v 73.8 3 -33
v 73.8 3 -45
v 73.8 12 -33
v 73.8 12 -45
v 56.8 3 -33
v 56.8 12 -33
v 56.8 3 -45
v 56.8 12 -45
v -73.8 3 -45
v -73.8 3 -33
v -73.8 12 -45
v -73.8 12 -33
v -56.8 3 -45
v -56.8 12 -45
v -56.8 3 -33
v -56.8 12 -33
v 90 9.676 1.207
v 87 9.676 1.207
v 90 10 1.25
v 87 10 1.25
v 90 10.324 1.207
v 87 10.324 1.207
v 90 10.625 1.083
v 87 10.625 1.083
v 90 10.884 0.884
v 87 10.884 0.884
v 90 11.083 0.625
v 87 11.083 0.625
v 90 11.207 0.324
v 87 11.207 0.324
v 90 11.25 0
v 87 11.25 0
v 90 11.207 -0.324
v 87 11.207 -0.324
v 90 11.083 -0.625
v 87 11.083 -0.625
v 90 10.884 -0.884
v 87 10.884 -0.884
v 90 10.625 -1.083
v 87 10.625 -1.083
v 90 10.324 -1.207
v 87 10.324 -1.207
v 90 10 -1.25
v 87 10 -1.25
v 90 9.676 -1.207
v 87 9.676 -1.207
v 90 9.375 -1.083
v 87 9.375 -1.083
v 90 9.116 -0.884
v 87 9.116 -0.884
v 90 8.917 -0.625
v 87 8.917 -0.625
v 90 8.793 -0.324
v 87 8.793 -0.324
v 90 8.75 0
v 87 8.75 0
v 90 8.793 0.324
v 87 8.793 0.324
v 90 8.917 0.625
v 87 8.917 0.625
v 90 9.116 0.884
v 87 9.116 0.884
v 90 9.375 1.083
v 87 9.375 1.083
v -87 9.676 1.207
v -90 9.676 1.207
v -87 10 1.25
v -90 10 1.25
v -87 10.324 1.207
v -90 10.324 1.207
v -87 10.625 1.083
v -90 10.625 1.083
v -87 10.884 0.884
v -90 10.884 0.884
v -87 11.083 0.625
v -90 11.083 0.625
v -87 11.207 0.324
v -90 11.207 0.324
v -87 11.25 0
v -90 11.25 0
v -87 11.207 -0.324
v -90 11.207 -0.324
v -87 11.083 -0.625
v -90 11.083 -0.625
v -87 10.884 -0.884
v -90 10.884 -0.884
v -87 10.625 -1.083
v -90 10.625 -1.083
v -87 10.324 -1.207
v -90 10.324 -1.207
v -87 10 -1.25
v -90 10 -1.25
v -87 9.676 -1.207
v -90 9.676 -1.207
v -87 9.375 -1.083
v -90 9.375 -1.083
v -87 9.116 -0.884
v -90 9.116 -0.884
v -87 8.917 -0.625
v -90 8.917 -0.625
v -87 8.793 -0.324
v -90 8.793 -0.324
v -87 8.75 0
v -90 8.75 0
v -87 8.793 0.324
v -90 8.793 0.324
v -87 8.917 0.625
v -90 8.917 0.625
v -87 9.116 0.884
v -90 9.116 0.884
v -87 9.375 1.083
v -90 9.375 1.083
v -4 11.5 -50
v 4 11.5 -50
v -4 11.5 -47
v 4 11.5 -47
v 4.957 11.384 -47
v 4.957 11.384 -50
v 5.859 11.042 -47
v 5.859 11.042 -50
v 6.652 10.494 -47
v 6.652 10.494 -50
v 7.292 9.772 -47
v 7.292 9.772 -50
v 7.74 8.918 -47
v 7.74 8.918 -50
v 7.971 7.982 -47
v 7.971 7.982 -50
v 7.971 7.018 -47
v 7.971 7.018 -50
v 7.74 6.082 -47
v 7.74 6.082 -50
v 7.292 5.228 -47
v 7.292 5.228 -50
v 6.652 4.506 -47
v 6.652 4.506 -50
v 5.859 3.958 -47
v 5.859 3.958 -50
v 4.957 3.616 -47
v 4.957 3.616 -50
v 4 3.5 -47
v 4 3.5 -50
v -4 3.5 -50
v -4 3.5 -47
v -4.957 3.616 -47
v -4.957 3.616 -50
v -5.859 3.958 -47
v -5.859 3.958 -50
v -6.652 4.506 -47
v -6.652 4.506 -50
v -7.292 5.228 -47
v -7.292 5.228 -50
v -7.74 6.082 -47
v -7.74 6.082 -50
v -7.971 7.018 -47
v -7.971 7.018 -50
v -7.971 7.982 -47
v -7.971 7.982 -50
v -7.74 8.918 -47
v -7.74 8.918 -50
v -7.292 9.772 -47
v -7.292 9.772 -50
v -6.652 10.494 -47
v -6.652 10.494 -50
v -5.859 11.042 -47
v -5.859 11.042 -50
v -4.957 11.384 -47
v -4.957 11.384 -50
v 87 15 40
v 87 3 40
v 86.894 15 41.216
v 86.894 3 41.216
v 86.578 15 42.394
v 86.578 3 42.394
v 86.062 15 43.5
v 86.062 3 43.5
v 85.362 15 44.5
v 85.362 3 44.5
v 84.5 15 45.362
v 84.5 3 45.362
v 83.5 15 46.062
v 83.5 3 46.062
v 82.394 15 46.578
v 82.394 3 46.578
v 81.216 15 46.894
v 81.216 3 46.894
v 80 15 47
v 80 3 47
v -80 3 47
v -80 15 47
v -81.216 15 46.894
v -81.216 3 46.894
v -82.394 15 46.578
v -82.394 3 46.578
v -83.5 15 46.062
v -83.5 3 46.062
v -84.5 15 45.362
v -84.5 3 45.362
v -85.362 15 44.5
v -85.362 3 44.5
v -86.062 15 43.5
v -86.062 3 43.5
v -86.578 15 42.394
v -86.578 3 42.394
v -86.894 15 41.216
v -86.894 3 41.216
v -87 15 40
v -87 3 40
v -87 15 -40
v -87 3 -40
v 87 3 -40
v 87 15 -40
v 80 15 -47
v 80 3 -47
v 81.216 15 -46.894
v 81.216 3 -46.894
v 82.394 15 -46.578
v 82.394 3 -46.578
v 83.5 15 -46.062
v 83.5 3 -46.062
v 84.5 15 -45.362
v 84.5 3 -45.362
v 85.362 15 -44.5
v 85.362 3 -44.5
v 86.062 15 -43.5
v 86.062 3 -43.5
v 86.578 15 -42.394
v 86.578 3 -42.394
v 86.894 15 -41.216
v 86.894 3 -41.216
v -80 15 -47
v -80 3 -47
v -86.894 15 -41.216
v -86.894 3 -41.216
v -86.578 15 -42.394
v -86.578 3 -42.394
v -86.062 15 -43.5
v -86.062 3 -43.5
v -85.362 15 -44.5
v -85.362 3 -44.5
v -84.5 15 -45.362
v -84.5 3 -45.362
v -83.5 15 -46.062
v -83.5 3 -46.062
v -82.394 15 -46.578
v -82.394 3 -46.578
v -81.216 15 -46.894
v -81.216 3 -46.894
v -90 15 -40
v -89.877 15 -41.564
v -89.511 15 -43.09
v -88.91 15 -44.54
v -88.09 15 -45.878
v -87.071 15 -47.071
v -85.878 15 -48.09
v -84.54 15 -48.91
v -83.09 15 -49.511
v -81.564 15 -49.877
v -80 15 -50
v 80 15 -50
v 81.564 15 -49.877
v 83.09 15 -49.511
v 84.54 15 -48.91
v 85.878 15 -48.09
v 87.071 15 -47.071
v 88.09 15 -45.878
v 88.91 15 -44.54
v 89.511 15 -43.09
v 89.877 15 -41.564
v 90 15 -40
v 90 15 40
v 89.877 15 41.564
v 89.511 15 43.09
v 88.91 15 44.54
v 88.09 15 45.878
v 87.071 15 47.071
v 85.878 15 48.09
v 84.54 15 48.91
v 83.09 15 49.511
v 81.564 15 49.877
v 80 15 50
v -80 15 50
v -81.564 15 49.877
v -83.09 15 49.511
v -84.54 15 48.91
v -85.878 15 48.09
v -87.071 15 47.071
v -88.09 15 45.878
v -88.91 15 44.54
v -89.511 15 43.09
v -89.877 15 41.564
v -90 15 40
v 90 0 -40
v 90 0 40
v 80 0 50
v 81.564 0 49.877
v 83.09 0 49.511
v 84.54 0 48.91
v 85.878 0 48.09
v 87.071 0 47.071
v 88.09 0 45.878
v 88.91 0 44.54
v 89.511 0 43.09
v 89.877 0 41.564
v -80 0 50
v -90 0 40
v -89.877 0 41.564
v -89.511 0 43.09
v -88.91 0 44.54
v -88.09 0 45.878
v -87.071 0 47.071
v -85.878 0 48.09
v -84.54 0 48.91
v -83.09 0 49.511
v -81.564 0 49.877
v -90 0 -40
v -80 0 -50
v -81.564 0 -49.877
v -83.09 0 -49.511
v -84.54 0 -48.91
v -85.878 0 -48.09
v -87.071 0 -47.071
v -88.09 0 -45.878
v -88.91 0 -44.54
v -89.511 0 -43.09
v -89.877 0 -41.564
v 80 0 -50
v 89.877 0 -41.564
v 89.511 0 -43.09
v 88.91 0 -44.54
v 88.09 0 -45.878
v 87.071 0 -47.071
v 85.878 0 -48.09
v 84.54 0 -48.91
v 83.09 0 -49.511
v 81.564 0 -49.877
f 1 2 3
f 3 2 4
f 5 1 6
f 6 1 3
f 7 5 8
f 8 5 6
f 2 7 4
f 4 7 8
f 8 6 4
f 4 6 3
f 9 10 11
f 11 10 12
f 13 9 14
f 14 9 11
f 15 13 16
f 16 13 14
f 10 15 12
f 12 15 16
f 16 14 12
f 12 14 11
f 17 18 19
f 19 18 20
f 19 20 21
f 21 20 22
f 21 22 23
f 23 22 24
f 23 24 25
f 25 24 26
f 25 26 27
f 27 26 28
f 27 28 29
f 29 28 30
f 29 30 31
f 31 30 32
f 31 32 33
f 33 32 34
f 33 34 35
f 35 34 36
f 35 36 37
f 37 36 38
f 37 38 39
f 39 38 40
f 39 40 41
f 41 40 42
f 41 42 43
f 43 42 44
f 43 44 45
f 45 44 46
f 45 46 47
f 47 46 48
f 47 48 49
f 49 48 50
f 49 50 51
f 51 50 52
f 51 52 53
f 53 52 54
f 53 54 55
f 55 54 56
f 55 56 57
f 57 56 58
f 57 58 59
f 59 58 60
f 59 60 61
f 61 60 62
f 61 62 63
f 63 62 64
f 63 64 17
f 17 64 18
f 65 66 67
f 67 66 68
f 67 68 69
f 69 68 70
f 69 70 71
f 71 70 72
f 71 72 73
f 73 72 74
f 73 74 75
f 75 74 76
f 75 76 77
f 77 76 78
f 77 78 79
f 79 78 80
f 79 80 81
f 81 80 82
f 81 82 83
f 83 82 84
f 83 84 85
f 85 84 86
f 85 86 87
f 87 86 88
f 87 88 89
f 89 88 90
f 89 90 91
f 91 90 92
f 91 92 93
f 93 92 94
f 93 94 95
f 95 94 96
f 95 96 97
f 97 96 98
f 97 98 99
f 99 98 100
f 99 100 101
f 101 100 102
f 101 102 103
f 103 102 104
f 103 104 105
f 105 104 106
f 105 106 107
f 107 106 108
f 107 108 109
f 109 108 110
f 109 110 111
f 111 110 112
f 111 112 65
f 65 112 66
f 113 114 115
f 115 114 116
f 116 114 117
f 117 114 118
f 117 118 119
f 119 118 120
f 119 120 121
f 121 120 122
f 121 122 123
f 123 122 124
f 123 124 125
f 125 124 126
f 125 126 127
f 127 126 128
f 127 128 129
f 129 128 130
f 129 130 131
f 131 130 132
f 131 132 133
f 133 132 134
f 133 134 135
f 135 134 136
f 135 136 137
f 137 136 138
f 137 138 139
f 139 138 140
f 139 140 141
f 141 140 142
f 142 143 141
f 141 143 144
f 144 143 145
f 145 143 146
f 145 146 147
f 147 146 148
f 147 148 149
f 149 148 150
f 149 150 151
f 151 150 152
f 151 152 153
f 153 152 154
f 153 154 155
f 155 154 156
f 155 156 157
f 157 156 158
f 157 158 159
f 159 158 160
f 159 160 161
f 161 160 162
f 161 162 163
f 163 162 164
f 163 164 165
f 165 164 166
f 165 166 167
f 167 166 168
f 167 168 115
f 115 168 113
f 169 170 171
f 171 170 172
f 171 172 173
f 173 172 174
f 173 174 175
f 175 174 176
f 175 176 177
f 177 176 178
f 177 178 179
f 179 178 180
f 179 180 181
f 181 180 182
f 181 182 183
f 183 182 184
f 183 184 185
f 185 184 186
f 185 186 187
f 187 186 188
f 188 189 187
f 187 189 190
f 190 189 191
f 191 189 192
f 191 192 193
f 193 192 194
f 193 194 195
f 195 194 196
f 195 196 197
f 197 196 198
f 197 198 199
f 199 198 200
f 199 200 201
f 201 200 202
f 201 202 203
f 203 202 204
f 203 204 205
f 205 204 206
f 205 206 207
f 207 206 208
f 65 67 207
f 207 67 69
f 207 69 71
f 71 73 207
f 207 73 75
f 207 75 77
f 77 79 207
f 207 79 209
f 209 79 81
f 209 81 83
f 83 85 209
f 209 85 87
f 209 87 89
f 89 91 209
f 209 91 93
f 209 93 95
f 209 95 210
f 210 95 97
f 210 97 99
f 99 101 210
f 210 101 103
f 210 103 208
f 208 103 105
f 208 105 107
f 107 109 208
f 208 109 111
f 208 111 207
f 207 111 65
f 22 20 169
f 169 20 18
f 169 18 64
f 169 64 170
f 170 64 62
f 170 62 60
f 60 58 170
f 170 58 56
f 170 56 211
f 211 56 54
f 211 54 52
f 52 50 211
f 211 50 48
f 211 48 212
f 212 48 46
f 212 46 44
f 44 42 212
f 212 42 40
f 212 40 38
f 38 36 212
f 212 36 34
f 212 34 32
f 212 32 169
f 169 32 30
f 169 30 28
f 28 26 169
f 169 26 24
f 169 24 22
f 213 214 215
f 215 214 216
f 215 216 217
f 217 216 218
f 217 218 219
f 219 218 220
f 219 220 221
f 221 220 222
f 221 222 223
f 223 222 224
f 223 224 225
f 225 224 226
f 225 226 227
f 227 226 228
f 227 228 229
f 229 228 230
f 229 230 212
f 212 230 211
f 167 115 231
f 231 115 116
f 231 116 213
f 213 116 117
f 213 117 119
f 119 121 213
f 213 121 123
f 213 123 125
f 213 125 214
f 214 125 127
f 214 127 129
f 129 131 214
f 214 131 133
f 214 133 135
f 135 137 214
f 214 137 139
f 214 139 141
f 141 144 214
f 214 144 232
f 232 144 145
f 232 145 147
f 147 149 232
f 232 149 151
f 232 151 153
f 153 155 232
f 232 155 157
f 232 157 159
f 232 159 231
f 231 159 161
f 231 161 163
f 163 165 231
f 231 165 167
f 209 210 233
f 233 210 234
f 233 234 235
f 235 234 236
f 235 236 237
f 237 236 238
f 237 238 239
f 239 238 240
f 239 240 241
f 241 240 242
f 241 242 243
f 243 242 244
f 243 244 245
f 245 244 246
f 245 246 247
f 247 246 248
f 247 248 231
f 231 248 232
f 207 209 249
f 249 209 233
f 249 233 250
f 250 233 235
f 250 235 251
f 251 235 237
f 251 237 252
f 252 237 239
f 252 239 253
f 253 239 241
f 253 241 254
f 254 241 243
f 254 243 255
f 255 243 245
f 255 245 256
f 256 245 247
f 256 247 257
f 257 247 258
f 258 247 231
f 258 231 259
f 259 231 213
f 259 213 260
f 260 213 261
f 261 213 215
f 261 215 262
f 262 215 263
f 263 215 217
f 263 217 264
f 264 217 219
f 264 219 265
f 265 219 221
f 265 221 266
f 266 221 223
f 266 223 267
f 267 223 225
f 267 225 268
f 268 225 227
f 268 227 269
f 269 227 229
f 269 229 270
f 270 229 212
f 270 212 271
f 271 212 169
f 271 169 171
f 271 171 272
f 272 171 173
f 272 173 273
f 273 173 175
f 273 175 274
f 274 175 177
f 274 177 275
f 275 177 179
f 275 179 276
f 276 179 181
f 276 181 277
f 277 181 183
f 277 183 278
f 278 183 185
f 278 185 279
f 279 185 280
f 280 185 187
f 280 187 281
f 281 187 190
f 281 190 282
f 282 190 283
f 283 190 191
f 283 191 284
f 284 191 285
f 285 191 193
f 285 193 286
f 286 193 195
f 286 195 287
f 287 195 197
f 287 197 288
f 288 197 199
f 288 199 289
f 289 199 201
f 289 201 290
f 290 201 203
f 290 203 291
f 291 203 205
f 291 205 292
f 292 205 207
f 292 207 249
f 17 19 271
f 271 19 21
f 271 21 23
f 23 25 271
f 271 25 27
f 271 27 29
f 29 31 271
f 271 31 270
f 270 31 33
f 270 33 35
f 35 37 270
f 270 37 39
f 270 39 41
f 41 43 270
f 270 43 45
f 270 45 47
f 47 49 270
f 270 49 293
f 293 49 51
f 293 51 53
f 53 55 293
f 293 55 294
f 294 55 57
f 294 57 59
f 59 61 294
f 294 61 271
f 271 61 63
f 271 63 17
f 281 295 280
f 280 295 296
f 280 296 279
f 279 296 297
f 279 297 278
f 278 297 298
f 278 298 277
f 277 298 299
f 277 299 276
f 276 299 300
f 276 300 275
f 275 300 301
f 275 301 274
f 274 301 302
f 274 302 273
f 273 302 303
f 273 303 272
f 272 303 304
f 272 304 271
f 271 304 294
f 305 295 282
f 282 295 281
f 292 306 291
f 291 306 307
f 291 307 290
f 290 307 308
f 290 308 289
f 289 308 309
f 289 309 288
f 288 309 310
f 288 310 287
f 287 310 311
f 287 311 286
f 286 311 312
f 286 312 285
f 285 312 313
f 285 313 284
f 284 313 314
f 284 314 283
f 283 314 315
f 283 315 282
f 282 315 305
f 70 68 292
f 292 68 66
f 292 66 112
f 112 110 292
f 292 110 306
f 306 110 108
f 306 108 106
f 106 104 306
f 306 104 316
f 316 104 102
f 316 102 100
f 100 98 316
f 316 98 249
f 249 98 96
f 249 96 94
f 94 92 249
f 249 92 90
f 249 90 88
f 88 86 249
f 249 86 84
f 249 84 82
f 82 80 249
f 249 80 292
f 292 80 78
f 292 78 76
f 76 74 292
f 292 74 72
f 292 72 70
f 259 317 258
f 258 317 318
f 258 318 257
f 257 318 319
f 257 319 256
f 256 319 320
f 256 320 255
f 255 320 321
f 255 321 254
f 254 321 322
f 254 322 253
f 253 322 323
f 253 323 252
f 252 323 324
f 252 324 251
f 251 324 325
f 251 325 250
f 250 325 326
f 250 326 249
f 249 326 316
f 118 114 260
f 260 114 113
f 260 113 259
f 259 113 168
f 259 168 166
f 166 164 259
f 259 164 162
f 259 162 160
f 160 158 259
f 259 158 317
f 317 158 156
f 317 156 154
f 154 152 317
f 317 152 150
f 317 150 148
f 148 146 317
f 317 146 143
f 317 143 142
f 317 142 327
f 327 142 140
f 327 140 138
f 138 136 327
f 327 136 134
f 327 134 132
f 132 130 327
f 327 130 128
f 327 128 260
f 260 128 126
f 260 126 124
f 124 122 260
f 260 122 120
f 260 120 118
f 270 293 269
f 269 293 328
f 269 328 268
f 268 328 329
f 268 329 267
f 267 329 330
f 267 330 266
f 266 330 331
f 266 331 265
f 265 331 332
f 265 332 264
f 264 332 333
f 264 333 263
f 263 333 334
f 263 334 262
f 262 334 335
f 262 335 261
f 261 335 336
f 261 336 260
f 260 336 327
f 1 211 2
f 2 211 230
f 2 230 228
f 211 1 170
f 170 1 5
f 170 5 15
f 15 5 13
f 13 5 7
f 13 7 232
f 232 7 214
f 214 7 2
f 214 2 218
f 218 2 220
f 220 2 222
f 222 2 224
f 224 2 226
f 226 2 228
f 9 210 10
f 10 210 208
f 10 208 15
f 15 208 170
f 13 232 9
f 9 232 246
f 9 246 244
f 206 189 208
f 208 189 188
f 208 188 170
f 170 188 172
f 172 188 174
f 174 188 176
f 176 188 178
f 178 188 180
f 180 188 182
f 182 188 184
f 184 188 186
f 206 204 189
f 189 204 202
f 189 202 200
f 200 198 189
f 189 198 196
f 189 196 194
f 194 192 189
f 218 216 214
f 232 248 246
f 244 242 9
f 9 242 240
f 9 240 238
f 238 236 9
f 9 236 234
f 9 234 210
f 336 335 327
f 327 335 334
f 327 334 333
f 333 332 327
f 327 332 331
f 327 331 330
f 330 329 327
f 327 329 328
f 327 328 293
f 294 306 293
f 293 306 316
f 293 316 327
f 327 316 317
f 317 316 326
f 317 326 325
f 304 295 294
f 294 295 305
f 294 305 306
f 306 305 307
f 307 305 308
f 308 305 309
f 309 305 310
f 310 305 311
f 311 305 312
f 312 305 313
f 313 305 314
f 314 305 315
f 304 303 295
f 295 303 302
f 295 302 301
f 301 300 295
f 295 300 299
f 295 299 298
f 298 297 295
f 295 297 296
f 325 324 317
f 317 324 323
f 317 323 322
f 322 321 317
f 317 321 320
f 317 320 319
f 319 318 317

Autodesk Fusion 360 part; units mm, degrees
sketch "Walls" plane through (0, 0, 0) normal (0, 1, 0) x (1, 0, 0)
  line L0 (-80, 50) -> (80, 50)
  line L1 (90, 40) -> (90, -40)
  line L2 (80, -50) -> (-80, -50)
  line L3 (-90, -40) -> (-90, 40)
  line L4 (-90, 50) -> (90, -50) construction
  line L5 (90, 50) -> (-90, -50) construction
  arc A0 (-90, -40) -> (-80, -50) centre (-80, -40) ccw
  arc A1 (80, -50) -> (90, -40) centre (80, -40) ccw
  arc A2 (90, 40) -> (80, 50) centre (80, 40) ccw
  arc A3 (-80, 50) -> (-90, 40) centre (-80, 40) ccw
  arc A4 (87, 40) -> (80, 47) centre (80, 40) ccw
  line L6 (-80, 47) -> (80, 47)
  arc A5 (-80, 47) -> (-87, 40) centre (-80, 40) ccw
  line L7 (-87, -40) -> (-87, 40)
  arc A6 (-87, -40) -> (-80, -47) centre (-80, -40) ccw
  line L8 (80, -47) -> (-80, -47)
  arc A7 (80, -47) -> (87, -40) centre (80, -40) ccw
  line L9 (87, 40) -> (87, -40)
  dimension "d1" = 180
  dimension "d2" = 100
  dimension "d3" = 10
  dimension "d4" = 3
extrude "Floor Extrusion" add sketch "Walls" along normal blind 3 contours L0 L1 L2 L3 A0 A1 A2 A3 | A4 L6 A5 L7 A6 L8 A7 L9
extrude "Walls Extrusion" add sketch "Walls" along normal blind 15
sketch "Port" plane through (0, 0, -50) normal (0, 0, -1) x (-1, 0, 0)
  line L0 (-80, 0) -> (80, 0)
  line L1 (80, 0) -> (80, 15)
  line L2 (80, 15) -> (-80, 15)
  line L3 (-80, 15) -> (-80, 0)
  line L4 (4, 11.5) -> (-4, 11.5)
  arc A0 (-4, 11.5) -> (-4, 3.5) centre (-4, 7.5) ccw
  line L5 (-4, 3.5) -> (4, 3.5)
  arc A1 (4, 3.5) -> (4, 11.5) centre (4, 7.5) ccw
  line L6 (4, 7.5) -> (-4, 7.5) construction
  line L7 (80, 0) -> (-80, 0)
  dimension "d11" = 8
  dimension "d12" = 8
  dimension "d25" = 4
  dimension "d42" = 7.5
extrude "Port Extrusion" cut sketch "Port" against normal blind 3 contours L4 A0 L5 A1
sketch "Tab Holes" plane through (0, 0, 0) normal (1, 0, 0) x (0, 0, -1)
  circle A0 centre (0, 10) radius 1.25
  line L0 (-40, 15) -> (40, 15)
  dimension "d26" = 2.5
  dimension "d27" = 5
extrude "Tab Holes Extrusion" cut sketch "Tab Holes" along normal through all and the other way through all
sketch "Encoder Blocks" plane through (0, 3, 0) normal (0, 1, 0) x (-1, 0, 0)
  line L0 (87, -40) -> (87, 40)
  arc A0 (87, 40) -> (80, 47) centre (80, 40) ccw
  line L1 (80, 47) -> (-80, 47)
  arc A1 (-80, 47) -> (-87, 40) centre (-80, 40) ccw
  line L2 (-87, 40) -> (-87, -40)
  arc A2 (-87, -40) -> (-80, -47) centre (-80, -40) ccw
  line L3 (-80, -47) -> (80, -47)
  arc A3 (80, -47) -> (87, -40) centre (80, -40) ccw
  line L4 (73.8, -45) -> (56.8, -45)
  line L5 (56.8, -45) -> (56.8, -33)
  line L6 (56.8, -33) -> (73.8, -33)
  line L7 (73.8, -33) -> (73.8, -45)
  line L8 (73.8, -45) -> (56.8, -33) construction
  line L9 (56.8, -45) -> (73.8, -33) construction
  line L10 (80, -50) -> (-80, -50)
  line L11 (90, 40) -> (90, -40)
  line L12 (-56.8, -45) -> (-73.8, -33) construction
  line L13 (-56.8, -33) -> (-56.8, -45)
  line L14 (-56.8, -45) -> (-73.8, -45)
  line L15 (-73.8, -45) -> (-56.8, -33) construction
  line L16 (-73.8, -33) -> (-56.8, -33)
  line L17 (-73.8, -45) -> (-73.8, -33)
  line L18 (80, -47) -> (-80, -47)
  line L19 (-90, -40) -> (-90, 40)
  point P0 (65.3, -39)
  point P1 (-65.3, -39)
  dimension "d29" = 17
  dimension "d30" = 12
  dimension "d31" = 5
  dimension "d32" = 16.2
  dimension "d35" = 17
  dimension "d36" = 12
  dimension "d38" = 5
  dimension "d39" = 16.2
extrude "Left Encoder Block Extrusion" add sketch "Encoder Blocks" along normal blind 9 contours L4 L5 L6 L7
extrude "Right Encoder Block Extrusion" add sketch "Encoder Blocks" along normal blind 9 contours L13 L14 L16 L17
equation "d25 = ( 8 / 2 ) * 1 mm"
equation "d27 = ( 10 / 2 ) * 1 mm"
equation "d33 = 15 mm - 3 mm - 3 mm"
equation "d40 = 15 mm - 3 mm - 3 mm"
equation "d42 = ( 15 / 2 ) * 1 mm"
